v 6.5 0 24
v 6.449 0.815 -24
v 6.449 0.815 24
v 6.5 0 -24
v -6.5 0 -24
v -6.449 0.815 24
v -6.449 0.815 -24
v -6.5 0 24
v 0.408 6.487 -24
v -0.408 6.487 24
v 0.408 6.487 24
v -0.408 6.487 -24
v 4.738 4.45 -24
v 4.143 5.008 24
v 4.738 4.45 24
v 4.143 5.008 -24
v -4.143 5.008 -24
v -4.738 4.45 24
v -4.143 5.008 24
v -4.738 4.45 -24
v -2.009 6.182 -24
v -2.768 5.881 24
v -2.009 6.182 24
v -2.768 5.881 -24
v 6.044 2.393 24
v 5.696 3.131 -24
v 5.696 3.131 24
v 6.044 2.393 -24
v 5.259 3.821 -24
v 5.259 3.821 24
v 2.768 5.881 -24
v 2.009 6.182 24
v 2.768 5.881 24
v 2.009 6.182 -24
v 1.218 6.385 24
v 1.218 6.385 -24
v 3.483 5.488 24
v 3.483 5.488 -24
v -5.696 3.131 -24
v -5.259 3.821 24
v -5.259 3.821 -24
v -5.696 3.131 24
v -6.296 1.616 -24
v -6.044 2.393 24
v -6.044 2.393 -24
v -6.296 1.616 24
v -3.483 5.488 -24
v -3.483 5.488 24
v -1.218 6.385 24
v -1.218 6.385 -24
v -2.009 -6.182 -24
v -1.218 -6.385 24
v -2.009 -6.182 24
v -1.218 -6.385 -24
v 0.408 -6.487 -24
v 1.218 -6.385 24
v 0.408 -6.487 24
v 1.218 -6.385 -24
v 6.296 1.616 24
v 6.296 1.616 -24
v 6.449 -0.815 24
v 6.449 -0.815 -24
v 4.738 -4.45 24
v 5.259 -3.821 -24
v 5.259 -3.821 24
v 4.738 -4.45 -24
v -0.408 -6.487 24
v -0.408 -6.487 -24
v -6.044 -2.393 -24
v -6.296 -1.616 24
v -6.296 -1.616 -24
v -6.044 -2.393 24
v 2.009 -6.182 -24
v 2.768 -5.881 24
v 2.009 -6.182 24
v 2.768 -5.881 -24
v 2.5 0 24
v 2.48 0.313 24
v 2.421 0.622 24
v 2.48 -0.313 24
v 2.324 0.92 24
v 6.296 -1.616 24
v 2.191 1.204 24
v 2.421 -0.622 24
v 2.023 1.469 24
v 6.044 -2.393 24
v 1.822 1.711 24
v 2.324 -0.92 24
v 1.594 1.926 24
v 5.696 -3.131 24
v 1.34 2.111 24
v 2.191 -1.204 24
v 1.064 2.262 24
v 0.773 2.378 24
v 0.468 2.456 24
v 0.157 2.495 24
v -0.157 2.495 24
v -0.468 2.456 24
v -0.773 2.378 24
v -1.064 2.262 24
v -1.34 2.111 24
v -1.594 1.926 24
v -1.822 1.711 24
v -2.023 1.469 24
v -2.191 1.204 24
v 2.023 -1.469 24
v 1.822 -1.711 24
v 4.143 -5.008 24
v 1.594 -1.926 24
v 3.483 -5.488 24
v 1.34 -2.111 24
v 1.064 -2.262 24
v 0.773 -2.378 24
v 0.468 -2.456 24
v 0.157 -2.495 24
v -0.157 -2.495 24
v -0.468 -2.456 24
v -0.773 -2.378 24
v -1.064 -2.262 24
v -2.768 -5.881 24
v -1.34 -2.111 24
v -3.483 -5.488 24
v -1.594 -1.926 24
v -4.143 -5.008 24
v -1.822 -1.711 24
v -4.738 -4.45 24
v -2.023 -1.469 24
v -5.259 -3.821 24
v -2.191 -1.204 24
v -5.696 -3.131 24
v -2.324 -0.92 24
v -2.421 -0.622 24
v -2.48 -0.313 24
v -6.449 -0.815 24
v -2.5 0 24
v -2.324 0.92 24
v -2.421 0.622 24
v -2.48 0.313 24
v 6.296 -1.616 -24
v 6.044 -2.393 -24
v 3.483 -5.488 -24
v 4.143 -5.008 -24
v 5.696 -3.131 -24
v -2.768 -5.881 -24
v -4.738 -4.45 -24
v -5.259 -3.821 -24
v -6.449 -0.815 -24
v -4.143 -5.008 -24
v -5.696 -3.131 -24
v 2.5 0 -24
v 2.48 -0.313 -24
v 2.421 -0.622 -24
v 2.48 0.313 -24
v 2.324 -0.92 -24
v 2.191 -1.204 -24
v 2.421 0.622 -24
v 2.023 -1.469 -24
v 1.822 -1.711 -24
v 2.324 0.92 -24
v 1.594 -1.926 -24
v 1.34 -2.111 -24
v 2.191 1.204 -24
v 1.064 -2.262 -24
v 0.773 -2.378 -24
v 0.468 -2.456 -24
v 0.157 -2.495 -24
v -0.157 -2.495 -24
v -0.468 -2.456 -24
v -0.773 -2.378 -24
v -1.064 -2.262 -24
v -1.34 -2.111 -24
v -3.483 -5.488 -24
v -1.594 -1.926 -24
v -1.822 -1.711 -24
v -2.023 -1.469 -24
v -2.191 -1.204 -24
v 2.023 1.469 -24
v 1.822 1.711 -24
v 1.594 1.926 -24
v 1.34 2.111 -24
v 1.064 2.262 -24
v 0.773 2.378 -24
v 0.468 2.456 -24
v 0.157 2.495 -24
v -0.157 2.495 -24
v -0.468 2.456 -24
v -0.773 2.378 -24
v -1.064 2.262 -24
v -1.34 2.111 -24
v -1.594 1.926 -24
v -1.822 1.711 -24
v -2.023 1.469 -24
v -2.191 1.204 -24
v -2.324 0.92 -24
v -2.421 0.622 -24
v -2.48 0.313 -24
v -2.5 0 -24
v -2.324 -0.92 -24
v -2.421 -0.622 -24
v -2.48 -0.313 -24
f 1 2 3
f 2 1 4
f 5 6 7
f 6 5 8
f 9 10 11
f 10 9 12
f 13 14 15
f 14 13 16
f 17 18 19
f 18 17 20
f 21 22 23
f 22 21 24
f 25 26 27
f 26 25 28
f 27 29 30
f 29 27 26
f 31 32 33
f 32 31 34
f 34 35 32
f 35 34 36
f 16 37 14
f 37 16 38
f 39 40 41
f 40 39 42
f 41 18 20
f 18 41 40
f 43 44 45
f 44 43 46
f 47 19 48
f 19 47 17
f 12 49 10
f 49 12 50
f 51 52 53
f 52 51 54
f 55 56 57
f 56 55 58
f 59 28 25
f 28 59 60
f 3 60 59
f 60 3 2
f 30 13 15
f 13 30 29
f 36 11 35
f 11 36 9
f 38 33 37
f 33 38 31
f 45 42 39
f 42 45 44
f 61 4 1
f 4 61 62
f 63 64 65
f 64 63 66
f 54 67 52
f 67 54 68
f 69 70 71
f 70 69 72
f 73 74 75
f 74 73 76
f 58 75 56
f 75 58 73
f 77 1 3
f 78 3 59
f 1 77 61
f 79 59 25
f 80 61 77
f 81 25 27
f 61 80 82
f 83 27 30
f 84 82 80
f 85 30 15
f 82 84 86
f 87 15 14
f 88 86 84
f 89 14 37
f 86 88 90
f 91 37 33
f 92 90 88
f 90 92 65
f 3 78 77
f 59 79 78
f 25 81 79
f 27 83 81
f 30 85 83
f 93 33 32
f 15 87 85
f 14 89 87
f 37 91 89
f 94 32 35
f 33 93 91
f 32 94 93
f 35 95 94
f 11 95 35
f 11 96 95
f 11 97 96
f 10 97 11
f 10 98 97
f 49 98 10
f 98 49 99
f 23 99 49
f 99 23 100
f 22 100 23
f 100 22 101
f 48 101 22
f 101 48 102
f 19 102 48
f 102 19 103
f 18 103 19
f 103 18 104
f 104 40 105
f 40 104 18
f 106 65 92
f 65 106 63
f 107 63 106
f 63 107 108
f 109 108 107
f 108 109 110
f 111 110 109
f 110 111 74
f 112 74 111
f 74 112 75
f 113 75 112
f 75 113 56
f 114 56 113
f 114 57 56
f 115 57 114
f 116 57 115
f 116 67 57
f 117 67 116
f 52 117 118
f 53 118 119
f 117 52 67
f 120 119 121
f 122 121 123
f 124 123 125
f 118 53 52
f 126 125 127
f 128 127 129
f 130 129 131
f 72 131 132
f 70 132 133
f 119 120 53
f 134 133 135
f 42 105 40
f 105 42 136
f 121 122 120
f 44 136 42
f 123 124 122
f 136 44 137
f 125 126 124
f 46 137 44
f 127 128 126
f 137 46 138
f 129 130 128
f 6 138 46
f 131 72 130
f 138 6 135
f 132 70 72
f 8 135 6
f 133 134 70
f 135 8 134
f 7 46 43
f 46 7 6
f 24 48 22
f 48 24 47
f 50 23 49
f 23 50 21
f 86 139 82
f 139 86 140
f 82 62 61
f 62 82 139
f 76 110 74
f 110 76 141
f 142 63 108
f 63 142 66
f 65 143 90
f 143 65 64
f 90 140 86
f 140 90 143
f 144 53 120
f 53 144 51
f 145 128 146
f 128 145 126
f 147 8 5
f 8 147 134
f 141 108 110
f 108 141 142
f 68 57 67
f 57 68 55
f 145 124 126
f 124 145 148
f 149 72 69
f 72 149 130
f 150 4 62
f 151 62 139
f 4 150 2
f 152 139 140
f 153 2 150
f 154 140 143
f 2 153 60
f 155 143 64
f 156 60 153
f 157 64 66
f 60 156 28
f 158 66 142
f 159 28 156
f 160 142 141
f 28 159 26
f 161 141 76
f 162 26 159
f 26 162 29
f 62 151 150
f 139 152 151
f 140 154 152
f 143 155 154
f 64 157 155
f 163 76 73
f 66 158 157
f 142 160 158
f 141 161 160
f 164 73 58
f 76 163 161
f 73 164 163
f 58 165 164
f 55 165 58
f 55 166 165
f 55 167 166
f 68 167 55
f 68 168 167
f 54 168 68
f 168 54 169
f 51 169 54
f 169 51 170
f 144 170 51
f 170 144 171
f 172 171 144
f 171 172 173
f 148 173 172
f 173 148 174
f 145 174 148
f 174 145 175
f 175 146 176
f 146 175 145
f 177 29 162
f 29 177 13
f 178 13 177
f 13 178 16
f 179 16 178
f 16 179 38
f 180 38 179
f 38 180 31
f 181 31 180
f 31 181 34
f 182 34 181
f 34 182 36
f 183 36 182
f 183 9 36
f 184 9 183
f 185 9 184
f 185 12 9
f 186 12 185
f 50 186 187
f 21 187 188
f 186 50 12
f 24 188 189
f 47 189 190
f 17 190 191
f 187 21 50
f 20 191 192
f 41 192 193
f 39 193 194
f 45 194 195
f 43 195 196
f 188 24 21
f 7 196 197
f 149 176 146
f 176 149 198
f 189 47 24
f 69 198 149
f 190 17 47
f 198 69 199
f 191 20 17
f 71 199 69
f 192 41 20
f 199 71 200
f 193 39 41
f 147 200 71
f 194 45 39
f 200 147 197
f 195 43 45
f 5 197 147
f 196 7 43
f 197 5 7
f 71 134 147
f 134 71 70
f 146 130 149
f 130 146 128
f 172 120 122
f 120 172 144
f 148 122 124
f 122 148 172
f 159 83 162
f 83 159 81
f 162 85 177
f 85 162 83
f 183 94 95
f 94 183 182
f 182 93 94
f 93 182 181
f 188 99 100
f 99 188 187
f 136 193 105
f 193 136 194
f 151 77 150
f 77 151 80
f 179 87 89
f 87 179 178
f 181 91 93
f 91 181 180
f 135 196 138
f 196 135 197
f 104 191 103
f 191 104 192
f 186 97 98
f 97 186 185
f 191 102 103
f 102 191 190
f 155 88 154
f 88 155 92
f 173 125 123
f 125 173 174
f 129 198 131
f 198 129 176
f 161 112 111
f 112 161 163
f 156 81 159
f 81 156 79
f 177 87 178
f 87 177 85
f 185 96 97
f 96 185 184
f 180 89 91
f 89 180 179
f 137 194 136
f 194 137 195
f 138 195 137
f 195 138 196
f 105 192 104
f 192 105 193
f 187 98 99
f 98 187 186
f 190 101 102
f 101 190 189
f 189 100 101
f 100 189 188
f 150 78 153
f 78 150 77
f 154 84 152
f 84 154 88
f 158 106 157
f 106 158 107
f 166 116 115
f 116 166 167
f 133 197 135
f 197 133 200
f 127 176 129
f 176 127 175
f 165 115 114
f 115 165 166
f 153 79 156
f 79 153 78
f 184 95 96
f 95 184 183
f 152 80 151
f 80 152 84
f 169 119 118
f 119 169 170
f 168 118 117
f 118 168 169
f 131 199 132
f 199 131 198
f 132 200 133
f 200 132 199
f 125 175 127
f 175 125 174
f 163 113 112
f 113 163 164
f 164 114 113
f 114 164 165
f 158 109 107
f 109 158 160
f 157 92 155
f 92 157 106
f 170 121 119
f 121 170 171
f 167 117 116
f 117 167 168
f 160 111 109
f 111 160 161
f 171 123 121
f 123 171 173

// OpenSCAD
$fn = 50;


difference() {
	union() {
		translate(v = [0, 0, -24.0000000000]) {
			cylinder(h = 48, r = 6.5000000000);
		}
	}
	union() {
		translate(v = [0, 0, -100.0000000000]) {
			cylinder(h = 200, r = 2.5000000000);
		}
	}
}
